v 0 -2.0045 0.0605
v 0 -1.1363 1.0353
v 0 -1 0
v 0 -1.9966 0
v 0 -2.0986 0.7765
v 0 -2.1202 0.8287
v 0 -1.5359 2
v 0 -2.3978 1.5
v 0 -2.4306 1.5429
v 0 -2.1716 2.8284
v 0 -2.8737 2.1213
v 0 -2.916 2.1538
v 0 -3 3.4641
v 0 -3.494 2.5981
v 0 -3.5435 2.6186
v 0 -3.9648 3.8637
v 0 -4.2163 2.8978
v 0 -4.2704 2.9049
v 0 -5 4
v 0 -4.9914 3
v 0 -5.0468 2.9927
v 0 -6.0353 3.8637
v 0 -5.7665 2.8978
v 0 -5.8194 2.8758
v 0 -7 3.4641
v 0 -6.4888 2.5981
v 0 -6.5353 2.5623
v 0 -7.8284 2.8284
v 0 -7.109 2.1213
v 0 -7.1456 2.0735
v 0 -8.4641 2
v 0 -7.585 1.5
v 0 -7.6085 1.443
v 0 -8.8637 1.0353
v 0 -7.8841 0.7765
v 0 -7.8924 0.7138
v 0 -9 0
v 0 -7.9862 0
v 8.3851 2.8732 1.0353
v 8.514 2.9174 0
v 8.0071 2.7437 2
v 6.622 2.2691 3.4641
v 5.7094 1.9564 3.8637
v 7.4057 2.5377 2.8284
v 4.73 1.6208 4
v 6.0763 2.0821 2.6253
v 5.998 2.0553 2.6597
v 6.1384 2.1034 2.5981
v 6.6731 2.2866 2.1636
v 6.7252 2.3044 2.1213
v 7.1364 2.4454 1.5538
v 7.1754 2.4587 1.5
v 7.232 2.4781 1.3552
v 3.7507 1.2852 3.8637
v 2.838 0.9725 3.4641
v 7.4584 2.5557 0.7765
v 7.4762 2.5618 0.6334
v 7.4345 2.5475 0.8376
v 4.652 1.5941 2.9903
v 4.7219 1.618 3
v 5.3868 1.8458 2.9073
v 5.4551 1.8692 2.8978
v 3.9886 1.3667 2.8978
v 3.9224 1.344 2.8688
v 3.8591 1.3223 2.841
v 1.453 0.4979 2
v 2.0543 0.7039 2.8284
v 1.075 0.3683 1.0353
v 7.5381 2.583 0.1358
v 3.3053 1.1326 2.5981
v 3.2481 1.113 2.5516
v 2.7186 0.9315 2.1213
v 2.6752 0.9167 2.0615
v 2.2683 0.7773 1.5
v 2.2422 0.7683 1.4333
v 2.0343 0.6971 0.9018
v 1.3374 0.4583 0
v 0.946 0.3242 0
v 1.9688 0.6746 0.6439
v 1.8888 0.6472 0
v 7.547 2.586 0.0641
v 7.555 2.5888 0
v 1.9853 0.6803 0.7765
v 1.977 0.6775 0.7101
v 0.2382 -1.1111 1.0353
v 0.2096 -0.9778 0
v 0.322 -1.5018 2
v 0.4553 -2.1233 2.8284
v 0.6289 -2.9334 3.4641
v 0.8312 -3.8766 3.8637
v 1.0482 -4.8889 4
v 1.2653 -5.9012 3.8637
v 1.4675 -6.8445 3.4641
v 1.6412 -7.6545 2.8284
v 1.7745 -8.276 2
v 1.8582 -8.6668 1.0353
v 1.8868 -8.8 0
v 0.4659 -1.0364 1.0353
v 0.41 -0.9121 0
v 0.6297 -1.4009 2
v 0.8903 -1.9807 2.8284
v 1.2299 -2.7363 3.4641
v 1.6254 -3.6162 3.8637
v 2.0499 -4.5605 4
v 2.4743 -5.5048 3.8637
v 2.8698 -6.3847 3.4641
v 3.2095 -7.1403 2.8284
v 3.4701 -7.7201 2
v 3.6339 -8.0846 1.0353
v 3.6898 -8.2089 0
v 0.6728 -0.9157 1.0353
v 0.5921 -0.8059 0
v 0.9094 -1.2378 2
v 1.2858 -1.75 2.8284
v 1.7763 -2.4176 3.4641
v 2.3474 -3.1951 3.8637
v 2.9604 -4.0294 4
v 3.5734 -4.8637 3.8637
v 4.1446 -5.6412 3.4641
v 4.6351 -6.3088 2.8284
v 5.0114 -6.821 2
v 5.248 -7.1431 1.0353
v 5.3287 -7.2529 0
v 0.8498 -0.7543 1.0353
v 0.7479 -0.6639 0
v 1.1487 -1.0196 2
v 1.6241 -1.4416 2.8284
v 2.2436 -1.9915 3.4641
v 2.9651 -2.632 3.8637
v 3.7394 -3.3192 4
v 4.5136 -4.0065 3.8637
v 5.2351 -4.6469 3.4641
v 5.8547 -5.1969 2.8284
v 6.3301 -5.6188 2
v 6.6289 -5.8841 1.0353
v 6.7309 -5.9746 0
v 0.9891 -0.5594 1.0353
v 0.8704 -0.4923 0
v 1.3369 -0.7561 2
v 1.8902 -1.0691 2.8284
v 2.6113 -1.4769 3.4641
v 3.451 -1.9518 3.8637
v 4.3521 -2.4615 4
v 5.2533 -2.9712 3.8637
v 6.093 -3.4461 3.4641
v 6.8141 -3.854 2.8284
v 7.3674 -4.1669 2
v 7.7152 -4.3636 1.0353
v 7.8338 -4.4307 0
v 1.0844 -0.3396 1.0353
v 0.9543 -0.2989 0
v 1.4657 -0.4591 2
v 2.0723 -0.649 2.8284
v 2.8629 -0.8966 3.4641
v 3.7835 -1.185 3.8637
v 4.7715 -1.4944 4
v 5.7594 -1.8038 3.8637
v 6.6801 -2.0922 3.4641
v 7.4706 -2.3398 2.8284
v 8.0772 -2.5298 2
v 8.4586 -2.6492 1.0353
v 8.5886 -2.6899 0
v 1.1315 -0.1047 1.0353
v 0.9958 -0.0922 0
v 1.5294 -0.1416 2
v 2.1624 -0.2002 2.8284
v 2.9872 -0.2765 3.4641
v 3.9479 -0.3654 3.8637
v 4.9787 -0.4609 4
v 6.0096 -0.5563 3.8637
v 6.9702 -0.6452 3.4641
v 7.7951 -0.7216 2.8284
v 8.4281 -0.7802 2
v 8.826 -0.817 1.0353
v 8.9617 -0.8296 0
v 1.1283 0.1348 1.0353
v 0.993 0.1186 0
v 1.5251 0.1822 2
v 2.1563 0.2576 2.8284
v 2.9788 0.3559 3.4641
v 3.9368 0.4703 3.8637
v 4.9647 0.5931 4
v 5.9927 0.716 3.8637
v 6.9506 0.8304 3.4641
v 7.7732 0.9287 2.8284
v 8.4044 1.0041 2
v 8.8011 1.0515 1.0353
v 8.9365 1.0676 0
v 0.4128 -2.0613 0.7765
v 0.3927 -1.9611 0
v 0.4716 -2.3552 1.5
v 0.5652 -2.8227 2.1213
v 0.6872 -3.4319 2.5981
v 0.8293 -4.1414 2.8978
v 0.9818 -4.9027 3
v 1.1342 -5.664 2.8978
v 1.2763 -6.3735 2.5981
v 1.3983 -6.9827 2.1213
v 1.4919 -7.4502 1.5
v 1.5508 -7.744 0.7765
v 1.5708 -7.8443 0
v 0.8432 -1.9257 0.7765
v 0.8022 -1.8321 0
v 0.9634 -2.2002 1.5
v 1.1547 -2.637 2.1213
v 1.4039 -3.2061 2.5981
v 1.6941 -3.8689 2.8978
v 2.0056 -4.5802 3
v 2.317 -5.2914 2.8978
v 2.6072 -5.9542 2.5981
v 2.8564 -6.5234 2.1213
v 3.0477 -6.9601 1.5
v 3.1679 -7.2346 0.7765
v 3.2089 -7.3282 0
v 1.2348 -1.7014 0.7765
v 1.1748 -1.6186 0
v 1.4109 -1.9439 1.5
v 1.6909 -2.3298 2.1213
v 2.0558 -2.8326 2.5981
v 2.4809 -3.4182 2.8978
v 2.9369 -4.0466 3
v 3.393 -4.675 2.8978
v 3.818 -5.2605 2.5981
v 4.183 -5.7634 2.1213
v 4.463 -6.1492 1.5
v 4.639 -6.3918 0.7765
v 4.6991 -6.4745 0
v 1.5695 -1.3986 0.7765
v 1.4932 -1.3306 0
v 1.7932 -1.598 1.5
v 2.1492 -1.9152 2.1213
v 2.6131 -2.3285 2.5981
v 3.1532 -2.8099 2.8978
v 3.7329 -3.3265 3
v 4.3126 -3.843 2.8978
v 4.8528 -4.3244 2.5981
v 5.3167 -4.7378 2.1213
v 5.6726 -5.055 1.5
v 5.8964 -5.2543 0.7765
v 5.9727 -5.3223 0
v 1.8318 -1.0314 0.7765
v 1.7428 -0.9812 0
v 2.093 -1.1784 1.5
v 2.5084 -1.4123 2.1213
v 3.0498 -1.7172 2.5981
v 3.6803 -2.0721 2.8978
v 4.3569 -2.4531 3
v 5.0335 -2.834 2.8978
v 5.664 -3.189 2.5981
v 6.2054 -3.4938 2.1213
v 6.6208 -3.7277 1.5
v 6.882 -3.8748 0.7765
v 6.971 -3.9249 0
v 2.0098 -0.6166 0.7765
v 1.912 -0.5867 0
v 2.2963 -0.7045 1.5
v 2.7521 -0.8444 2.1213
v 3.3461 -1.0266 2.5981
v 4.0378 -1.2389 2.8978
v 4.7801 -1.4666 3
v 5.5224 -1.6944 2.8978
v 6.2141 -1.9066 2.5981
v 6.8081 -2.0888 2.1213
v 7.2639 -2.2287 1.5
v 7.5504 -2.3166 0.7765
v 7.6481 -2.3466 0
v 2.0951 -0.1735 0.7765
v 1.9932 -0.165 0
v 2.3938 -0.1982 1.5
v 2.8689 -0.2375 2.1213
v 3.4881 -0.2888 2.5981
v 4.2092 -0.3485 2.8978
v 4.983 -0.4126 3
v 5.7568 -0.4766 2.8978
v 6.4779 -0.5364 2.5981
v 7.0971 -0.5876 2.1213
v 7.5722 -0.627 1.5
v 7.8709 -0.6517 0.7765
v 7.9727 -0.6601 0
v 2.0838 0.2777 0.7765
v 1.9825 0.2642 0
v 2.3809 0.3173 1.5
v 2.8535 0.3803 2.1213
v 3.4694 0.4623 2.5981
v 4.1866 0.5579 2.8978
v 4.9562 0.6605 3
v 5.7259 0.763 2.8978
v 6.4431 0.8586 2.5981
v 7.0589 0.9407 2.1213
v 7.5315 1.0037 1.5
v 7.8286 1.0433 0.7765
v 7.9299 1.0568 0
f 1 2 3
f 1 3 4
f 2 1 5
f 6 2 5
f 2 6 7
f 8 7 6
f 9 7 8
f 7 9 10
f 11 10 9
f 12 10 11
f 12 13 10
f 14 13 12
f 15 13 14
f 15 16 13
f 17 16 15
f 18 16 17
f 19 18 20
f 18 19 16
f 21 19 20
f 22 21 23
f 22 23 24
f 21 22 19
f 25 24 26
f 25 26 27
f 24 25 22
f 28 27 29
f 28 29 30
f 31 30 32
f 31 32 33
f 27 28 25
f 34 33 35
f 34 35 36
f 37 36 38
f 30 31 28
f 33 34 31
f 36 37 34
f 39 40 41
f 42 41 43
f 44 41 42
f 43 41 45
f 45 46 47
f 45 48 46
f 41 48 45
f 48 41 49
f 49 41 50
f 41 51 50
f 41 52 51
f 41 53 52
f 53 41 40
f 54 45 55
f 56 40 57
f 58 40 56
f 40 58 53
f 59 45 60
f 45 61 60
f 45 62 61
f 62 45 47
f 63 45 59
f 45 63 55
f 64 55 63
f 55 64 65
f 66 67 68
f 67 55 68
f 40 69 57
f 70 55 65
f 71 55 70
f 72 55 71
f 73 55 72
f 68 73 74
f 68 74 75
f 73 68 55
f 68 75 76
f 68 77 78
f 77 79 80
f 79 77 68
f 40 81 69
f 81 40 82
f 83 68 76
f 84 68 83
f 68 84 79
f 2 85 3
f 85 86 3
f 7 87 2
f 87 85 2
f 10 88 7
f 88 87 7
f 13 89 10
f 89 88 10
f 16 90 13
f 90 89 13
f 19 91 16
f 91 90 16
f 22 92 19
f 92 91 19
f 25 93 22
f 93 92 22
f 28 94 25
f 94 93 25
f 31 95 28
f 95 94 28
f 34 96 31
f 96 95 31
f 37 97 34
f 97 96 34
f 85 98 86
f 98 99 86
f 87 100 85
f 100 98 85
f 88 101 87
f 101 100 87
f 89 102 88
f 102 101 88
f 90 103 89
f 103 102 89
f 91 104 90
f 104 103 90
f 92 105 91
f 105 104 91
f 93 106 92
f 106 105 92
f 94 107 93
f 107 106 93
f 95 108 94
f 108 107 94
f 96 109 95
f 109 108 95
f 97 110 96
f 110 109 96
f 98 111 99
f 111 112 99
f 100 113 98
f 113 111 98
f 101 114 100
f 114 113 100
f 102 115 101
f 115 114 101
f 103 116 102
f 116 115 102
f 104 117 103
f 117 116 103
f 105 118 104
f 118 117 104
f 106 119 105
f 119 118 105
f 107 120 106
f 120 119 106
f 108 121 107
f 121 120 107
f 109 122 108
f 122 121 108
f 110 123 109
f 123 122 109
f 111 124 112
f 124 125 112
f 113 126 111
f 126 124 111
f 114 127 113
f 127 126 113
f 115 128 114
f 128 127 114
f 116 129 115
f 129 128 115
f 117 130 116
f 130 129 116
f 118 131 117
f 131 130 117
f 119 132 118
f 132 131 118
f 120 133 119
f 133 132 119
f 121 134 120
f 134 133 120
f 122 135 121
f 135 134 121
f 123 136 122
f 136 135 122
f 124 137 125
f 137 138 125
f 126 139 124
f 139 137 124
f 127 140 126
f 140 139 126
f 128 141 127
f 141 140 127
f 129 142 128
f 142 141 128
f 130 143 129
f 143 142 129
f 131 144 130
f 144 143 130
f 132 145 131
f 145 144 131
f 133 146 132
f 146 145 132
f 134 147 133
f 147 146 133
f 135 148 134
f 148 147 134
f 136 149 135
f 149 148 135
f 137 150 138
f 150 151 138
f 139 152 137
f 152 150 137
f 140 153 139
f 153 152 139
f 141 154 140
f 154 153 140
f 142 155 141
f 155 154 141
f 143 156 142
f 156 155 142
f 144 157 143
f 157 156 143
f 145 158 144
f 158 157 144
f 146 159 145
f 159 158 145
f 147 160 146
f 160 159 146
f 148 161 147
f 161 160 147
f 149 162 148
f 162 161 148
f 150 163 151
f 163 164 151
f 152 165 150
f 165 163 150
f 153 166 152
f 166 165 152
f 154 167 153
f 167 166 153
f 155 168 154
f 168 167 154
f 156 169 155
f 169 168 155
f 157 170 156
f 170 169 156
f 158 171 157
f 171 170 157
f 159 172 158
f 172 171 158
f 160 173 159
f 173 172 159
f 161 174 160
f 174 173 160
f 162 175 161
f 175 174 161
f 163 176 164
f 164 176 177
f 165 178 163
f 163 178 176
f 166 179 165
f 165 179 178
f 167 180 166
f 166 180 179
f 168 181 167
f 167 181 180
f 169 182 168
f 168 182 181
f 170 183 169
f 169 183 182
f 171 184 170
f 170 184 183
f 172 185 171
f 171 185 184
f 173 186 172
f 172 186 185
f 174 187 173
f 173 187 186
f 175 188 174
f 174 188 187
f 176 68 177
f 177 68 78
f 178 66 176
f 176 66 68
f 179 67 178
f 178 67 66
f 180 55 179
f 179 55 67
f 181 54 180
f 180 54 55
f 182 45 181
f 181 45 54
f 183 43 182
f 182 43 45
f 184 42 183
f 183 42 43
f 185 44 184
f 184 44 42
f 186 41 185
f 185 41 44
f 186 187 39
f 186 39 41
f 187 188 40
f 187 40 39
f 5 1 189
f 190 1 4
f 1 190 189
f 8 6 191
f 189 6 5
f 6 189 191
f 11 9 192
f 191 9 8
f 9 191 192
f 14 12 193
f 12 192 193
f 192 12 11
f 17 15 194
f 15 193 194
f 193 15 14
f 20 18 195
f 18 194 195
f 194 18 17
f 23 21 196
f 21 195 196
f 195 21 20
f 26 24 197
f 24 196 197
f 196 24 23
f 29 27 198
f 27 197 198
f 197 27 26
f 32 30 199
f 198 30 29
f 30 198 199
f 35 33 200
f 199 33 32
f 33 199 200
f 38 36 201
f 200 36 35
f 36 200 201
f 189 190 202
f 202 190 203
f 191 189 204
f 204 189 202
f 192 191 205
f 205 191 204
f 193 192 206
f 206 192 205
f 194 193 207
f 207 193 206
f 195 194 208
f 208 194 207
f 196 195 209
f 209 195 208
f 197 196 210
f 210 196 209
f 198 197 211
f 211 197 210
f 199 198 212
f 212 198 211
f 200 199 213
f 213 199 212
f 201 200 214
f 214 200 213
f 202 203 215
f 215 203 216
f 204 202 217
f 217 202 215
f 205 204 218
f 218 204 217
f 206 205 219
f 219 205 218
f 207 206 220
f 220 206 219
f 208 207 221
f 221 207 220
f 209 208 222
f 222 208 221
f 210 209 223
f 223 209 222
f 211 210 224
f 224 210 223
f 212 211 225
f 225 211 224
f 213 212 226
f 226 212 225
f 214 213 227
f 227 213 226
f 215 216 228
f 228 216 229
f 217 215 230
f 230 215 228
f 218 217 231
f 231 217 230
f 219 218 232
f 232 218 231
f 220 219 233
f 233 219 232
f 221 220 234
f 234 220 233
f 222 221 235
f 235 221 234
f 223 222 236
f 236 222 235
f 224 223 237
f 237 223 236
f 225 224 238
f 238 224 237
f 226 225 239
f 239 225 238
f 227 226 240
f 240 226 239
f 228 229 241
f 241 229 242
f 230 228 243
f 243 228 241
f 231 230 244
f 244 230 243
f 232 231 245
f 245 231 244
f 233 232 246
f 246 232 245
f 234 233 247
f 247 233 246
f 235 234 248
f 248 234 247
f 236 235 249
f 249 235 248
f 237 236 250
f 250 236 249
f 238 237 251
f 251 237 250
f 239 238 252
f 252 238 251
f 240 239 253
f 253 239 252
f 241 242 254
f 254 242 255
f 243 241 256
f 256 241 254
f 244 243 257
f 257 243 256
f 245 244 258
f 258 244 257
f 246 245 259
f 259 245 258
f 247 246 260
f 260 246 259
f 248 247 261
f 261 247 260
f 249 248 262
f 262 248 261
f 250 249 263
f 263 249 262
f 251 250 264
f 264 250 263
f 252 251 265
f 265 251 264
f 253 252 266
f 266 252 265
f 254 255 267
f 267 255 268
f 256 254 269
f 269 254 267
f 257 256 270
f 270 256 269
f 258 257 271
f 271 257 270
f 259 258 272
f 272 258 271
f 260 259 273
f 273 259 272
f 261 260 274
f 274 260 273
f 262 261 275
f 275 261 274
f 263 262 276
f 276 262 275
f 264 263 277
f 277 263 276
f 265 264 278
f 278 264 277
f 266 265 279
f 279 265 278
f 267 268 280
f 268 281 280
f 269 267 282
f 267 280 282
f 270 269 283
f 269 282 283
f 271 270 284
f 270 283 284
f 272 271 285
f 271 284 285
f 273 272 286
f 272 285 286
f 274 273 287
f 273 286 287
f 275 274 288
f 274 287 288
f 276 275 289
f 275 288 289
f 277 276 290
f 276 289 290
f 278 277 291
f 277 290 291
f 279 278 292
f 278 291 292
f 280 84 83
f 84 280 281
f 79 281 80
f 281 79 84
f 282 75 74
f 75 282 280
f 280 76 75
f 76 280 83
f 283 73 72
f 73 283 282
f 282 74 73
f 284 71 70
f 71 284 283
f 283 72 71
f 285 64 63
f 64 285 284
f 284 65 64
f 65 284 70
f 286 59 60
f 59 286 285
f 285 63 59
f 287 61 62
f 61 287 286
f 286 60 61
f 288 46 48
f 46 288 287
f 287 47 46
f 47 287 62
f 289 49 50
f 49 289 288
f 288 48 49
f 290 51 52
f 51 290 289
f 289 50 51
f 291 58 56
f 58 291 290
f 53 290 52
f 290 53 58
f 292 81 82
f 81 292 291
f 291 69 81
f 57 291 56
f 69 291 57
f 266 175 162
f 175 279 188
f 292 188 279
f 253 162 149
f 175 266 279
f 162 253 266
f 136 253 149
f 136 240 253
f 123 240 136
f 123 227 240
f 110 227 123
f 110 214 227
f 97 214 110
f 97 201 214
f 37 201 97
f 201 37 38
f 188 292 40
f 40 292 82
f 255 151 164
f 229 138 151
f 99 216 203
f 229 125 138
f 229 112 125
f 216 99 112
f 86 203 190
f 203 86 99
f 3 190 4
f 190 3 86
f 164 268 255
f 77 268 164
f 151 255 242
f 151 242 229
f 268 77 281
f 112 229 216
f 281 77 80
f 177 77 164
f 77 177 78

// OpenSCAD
// file: ../build_environments.scad
// build_environments.scad: modules to build level sections
//

module pool(diameter=10.0, wall_height=2.0, step_width=3.0, connections=[])
{
    difference() {
        union() {
        difference() {
            cylinder(h=0.5,r1=diameter+step_width,r2=diameter+step_width,$fn=48);
            translate([0,0,-0.1])
                cylinder(h=0.7,r1=diameter,r2=diameter,$fn=48);
        }
        difference() {
            cylinder(h=wall_height,r1=diameter+step_width+1.0,r2=diameter+step_width+1.0,$fn=48);
            translate([0,0,-0.1])
                cylinder(h=wall_height+0.2,r1=diameter+step_width,r2=diameter+step_width,$fn=48);
        }
        }
    
        for (c = connections)
        {
            rotate([0,90,0]) {
                angle = atan2(c[1],c[0]);
                rotate([-angle,0,0]) {
                    cylinder(h=diameter+5.0,r1=c[2],r2=c[2],$fn=48);
                }
            }
        }
    }
}

module straight(length=10.0, width=2.0, dy1=0.0, dy2=0.0, dz=0.0)
{
    dims = [0, 0, 0, 0, 0, (dz/length)];
    matrix = [
        [ 1, dims[0], dims[1], 0 ],
        [ dims[2], 1, dims[4], 0 ],
        [ dims[5], dims[3], 1, 0 ],
        [ 0, 0, 0, 1 ]
    ];
    multmatrix(matrix)
    difference() {
        translate([dy1,0,0])
        union() {
            rotate([0,90,0]) {
                difference() {
                    cylinder(h=(length-dy1-dy2),r1=width+1.0,r2=width+1.0,$fn=24);
                    translate([0,0,-0.1])
                        cylinder(h=(length-dy1-dy2+0.2),r1=width,r2=width,$fn=24);
                }
                difference() {
                    cylinder(h=1.0,r1=width+2.0,r2=width+2.0,$fn=24);
                    translate([0,0,-0.1])
                        cylinder(h=1.2,r1=width,r2=width,$fn=24);
                }
                translate([0,0,(length-dy1-dy2)-1.0]) {
                    difference() {
                        cylinder(h=1.0,r1=width+2.0,r2=width+2.0,$fn=24);
                        translate([0,0,-0.1])
                            cylinder(h=1.2,r1=width,r2=width,$fn=24);
                    }
                }
            }
        }
        translate([0,0,-(2*width+4.0)/2])
            cube([3*length,3*length,2*width+4.0],center=true);
    }
}

module curve(p0=[0,0], center=[0,0], dir=1, angle=0.0, width=2.0)
{
    radius = sqrt((p0[0]-center[0])*(p0[0]-center[0]) + (p0[1]-center[1])*(p0[1]-center[1]));
    if (dir == 0) {
        difference() {
            rotate([0,0,-90])
            difference() {
                rotate_extrude(angle = angle, convexity = 10, $fn=32)
                    translate([radius, 0, 0])
                        circle(r = width+1.0,$fn=24);
                rotate([0,0,-1.0])
                    rotate_extrude(angle = angle+2.0, convexity = 10, $fn=32)
                        translate([radius, 0, 0])
                            circle(r = width,$fn=24);
            }
            translate([0,0,-(2*width+4.0)/2])
                cube([5*radius,5*radius,2*width+4.0],center=true);
        }
    }
    else {
        difference() {
            rotate([0,0,90])
            difference() {
                rotate_extrude(angle = -angle, convexity = 10, $fn=32)
                    translate([radius, 0, 0])
                        circle(r = width+1.0,$fn=24);
                rotate([0,0,1.0])
                    rotate_extrude(angle = -angle-2.0, convexity = 10, $fn=32)
                        translate([radius, 0, 0])
                            circle(r = width,$fn=24);
            }
            translate([0,0,-(2*width+4.0)/2])
                cube([5*radius,5*radius,2*width+4.0],center=true);
        }
    }

}

// test pool
//pool(diameter=12.0000, wall_height=3.0000, step_width=3.0000, connections=[[0.0000,-26.0000,2.0000], [23.6074,0.0000,2.0000]]);

// test straight, slope
//straight(length=26.0000, width=2.0000, dy1=11.8322, dy2=6.7082, dz=0.0000);
//straight(length=29.1549, width=12.0000, dy1=0.0000, dy2=0.0000, dz=-15.0000);

// test curve
//curve(p0=[23.6074, 0.0000], center=[23.6074, 5.0000], dir=0, angle=60.1011, width=2.0000);
//curve(p0=[33.6426, 12.4219], center=[37.9771, 9.9295], dir=1, angle=120.4627, width=2.0000);
// main file
use <../build_environments.scad>;
curve(p0=[-51.9408, -11.4140], center=[-48.4859, -15.0284], dir=0, angle=108.9145, width=3.0000);
